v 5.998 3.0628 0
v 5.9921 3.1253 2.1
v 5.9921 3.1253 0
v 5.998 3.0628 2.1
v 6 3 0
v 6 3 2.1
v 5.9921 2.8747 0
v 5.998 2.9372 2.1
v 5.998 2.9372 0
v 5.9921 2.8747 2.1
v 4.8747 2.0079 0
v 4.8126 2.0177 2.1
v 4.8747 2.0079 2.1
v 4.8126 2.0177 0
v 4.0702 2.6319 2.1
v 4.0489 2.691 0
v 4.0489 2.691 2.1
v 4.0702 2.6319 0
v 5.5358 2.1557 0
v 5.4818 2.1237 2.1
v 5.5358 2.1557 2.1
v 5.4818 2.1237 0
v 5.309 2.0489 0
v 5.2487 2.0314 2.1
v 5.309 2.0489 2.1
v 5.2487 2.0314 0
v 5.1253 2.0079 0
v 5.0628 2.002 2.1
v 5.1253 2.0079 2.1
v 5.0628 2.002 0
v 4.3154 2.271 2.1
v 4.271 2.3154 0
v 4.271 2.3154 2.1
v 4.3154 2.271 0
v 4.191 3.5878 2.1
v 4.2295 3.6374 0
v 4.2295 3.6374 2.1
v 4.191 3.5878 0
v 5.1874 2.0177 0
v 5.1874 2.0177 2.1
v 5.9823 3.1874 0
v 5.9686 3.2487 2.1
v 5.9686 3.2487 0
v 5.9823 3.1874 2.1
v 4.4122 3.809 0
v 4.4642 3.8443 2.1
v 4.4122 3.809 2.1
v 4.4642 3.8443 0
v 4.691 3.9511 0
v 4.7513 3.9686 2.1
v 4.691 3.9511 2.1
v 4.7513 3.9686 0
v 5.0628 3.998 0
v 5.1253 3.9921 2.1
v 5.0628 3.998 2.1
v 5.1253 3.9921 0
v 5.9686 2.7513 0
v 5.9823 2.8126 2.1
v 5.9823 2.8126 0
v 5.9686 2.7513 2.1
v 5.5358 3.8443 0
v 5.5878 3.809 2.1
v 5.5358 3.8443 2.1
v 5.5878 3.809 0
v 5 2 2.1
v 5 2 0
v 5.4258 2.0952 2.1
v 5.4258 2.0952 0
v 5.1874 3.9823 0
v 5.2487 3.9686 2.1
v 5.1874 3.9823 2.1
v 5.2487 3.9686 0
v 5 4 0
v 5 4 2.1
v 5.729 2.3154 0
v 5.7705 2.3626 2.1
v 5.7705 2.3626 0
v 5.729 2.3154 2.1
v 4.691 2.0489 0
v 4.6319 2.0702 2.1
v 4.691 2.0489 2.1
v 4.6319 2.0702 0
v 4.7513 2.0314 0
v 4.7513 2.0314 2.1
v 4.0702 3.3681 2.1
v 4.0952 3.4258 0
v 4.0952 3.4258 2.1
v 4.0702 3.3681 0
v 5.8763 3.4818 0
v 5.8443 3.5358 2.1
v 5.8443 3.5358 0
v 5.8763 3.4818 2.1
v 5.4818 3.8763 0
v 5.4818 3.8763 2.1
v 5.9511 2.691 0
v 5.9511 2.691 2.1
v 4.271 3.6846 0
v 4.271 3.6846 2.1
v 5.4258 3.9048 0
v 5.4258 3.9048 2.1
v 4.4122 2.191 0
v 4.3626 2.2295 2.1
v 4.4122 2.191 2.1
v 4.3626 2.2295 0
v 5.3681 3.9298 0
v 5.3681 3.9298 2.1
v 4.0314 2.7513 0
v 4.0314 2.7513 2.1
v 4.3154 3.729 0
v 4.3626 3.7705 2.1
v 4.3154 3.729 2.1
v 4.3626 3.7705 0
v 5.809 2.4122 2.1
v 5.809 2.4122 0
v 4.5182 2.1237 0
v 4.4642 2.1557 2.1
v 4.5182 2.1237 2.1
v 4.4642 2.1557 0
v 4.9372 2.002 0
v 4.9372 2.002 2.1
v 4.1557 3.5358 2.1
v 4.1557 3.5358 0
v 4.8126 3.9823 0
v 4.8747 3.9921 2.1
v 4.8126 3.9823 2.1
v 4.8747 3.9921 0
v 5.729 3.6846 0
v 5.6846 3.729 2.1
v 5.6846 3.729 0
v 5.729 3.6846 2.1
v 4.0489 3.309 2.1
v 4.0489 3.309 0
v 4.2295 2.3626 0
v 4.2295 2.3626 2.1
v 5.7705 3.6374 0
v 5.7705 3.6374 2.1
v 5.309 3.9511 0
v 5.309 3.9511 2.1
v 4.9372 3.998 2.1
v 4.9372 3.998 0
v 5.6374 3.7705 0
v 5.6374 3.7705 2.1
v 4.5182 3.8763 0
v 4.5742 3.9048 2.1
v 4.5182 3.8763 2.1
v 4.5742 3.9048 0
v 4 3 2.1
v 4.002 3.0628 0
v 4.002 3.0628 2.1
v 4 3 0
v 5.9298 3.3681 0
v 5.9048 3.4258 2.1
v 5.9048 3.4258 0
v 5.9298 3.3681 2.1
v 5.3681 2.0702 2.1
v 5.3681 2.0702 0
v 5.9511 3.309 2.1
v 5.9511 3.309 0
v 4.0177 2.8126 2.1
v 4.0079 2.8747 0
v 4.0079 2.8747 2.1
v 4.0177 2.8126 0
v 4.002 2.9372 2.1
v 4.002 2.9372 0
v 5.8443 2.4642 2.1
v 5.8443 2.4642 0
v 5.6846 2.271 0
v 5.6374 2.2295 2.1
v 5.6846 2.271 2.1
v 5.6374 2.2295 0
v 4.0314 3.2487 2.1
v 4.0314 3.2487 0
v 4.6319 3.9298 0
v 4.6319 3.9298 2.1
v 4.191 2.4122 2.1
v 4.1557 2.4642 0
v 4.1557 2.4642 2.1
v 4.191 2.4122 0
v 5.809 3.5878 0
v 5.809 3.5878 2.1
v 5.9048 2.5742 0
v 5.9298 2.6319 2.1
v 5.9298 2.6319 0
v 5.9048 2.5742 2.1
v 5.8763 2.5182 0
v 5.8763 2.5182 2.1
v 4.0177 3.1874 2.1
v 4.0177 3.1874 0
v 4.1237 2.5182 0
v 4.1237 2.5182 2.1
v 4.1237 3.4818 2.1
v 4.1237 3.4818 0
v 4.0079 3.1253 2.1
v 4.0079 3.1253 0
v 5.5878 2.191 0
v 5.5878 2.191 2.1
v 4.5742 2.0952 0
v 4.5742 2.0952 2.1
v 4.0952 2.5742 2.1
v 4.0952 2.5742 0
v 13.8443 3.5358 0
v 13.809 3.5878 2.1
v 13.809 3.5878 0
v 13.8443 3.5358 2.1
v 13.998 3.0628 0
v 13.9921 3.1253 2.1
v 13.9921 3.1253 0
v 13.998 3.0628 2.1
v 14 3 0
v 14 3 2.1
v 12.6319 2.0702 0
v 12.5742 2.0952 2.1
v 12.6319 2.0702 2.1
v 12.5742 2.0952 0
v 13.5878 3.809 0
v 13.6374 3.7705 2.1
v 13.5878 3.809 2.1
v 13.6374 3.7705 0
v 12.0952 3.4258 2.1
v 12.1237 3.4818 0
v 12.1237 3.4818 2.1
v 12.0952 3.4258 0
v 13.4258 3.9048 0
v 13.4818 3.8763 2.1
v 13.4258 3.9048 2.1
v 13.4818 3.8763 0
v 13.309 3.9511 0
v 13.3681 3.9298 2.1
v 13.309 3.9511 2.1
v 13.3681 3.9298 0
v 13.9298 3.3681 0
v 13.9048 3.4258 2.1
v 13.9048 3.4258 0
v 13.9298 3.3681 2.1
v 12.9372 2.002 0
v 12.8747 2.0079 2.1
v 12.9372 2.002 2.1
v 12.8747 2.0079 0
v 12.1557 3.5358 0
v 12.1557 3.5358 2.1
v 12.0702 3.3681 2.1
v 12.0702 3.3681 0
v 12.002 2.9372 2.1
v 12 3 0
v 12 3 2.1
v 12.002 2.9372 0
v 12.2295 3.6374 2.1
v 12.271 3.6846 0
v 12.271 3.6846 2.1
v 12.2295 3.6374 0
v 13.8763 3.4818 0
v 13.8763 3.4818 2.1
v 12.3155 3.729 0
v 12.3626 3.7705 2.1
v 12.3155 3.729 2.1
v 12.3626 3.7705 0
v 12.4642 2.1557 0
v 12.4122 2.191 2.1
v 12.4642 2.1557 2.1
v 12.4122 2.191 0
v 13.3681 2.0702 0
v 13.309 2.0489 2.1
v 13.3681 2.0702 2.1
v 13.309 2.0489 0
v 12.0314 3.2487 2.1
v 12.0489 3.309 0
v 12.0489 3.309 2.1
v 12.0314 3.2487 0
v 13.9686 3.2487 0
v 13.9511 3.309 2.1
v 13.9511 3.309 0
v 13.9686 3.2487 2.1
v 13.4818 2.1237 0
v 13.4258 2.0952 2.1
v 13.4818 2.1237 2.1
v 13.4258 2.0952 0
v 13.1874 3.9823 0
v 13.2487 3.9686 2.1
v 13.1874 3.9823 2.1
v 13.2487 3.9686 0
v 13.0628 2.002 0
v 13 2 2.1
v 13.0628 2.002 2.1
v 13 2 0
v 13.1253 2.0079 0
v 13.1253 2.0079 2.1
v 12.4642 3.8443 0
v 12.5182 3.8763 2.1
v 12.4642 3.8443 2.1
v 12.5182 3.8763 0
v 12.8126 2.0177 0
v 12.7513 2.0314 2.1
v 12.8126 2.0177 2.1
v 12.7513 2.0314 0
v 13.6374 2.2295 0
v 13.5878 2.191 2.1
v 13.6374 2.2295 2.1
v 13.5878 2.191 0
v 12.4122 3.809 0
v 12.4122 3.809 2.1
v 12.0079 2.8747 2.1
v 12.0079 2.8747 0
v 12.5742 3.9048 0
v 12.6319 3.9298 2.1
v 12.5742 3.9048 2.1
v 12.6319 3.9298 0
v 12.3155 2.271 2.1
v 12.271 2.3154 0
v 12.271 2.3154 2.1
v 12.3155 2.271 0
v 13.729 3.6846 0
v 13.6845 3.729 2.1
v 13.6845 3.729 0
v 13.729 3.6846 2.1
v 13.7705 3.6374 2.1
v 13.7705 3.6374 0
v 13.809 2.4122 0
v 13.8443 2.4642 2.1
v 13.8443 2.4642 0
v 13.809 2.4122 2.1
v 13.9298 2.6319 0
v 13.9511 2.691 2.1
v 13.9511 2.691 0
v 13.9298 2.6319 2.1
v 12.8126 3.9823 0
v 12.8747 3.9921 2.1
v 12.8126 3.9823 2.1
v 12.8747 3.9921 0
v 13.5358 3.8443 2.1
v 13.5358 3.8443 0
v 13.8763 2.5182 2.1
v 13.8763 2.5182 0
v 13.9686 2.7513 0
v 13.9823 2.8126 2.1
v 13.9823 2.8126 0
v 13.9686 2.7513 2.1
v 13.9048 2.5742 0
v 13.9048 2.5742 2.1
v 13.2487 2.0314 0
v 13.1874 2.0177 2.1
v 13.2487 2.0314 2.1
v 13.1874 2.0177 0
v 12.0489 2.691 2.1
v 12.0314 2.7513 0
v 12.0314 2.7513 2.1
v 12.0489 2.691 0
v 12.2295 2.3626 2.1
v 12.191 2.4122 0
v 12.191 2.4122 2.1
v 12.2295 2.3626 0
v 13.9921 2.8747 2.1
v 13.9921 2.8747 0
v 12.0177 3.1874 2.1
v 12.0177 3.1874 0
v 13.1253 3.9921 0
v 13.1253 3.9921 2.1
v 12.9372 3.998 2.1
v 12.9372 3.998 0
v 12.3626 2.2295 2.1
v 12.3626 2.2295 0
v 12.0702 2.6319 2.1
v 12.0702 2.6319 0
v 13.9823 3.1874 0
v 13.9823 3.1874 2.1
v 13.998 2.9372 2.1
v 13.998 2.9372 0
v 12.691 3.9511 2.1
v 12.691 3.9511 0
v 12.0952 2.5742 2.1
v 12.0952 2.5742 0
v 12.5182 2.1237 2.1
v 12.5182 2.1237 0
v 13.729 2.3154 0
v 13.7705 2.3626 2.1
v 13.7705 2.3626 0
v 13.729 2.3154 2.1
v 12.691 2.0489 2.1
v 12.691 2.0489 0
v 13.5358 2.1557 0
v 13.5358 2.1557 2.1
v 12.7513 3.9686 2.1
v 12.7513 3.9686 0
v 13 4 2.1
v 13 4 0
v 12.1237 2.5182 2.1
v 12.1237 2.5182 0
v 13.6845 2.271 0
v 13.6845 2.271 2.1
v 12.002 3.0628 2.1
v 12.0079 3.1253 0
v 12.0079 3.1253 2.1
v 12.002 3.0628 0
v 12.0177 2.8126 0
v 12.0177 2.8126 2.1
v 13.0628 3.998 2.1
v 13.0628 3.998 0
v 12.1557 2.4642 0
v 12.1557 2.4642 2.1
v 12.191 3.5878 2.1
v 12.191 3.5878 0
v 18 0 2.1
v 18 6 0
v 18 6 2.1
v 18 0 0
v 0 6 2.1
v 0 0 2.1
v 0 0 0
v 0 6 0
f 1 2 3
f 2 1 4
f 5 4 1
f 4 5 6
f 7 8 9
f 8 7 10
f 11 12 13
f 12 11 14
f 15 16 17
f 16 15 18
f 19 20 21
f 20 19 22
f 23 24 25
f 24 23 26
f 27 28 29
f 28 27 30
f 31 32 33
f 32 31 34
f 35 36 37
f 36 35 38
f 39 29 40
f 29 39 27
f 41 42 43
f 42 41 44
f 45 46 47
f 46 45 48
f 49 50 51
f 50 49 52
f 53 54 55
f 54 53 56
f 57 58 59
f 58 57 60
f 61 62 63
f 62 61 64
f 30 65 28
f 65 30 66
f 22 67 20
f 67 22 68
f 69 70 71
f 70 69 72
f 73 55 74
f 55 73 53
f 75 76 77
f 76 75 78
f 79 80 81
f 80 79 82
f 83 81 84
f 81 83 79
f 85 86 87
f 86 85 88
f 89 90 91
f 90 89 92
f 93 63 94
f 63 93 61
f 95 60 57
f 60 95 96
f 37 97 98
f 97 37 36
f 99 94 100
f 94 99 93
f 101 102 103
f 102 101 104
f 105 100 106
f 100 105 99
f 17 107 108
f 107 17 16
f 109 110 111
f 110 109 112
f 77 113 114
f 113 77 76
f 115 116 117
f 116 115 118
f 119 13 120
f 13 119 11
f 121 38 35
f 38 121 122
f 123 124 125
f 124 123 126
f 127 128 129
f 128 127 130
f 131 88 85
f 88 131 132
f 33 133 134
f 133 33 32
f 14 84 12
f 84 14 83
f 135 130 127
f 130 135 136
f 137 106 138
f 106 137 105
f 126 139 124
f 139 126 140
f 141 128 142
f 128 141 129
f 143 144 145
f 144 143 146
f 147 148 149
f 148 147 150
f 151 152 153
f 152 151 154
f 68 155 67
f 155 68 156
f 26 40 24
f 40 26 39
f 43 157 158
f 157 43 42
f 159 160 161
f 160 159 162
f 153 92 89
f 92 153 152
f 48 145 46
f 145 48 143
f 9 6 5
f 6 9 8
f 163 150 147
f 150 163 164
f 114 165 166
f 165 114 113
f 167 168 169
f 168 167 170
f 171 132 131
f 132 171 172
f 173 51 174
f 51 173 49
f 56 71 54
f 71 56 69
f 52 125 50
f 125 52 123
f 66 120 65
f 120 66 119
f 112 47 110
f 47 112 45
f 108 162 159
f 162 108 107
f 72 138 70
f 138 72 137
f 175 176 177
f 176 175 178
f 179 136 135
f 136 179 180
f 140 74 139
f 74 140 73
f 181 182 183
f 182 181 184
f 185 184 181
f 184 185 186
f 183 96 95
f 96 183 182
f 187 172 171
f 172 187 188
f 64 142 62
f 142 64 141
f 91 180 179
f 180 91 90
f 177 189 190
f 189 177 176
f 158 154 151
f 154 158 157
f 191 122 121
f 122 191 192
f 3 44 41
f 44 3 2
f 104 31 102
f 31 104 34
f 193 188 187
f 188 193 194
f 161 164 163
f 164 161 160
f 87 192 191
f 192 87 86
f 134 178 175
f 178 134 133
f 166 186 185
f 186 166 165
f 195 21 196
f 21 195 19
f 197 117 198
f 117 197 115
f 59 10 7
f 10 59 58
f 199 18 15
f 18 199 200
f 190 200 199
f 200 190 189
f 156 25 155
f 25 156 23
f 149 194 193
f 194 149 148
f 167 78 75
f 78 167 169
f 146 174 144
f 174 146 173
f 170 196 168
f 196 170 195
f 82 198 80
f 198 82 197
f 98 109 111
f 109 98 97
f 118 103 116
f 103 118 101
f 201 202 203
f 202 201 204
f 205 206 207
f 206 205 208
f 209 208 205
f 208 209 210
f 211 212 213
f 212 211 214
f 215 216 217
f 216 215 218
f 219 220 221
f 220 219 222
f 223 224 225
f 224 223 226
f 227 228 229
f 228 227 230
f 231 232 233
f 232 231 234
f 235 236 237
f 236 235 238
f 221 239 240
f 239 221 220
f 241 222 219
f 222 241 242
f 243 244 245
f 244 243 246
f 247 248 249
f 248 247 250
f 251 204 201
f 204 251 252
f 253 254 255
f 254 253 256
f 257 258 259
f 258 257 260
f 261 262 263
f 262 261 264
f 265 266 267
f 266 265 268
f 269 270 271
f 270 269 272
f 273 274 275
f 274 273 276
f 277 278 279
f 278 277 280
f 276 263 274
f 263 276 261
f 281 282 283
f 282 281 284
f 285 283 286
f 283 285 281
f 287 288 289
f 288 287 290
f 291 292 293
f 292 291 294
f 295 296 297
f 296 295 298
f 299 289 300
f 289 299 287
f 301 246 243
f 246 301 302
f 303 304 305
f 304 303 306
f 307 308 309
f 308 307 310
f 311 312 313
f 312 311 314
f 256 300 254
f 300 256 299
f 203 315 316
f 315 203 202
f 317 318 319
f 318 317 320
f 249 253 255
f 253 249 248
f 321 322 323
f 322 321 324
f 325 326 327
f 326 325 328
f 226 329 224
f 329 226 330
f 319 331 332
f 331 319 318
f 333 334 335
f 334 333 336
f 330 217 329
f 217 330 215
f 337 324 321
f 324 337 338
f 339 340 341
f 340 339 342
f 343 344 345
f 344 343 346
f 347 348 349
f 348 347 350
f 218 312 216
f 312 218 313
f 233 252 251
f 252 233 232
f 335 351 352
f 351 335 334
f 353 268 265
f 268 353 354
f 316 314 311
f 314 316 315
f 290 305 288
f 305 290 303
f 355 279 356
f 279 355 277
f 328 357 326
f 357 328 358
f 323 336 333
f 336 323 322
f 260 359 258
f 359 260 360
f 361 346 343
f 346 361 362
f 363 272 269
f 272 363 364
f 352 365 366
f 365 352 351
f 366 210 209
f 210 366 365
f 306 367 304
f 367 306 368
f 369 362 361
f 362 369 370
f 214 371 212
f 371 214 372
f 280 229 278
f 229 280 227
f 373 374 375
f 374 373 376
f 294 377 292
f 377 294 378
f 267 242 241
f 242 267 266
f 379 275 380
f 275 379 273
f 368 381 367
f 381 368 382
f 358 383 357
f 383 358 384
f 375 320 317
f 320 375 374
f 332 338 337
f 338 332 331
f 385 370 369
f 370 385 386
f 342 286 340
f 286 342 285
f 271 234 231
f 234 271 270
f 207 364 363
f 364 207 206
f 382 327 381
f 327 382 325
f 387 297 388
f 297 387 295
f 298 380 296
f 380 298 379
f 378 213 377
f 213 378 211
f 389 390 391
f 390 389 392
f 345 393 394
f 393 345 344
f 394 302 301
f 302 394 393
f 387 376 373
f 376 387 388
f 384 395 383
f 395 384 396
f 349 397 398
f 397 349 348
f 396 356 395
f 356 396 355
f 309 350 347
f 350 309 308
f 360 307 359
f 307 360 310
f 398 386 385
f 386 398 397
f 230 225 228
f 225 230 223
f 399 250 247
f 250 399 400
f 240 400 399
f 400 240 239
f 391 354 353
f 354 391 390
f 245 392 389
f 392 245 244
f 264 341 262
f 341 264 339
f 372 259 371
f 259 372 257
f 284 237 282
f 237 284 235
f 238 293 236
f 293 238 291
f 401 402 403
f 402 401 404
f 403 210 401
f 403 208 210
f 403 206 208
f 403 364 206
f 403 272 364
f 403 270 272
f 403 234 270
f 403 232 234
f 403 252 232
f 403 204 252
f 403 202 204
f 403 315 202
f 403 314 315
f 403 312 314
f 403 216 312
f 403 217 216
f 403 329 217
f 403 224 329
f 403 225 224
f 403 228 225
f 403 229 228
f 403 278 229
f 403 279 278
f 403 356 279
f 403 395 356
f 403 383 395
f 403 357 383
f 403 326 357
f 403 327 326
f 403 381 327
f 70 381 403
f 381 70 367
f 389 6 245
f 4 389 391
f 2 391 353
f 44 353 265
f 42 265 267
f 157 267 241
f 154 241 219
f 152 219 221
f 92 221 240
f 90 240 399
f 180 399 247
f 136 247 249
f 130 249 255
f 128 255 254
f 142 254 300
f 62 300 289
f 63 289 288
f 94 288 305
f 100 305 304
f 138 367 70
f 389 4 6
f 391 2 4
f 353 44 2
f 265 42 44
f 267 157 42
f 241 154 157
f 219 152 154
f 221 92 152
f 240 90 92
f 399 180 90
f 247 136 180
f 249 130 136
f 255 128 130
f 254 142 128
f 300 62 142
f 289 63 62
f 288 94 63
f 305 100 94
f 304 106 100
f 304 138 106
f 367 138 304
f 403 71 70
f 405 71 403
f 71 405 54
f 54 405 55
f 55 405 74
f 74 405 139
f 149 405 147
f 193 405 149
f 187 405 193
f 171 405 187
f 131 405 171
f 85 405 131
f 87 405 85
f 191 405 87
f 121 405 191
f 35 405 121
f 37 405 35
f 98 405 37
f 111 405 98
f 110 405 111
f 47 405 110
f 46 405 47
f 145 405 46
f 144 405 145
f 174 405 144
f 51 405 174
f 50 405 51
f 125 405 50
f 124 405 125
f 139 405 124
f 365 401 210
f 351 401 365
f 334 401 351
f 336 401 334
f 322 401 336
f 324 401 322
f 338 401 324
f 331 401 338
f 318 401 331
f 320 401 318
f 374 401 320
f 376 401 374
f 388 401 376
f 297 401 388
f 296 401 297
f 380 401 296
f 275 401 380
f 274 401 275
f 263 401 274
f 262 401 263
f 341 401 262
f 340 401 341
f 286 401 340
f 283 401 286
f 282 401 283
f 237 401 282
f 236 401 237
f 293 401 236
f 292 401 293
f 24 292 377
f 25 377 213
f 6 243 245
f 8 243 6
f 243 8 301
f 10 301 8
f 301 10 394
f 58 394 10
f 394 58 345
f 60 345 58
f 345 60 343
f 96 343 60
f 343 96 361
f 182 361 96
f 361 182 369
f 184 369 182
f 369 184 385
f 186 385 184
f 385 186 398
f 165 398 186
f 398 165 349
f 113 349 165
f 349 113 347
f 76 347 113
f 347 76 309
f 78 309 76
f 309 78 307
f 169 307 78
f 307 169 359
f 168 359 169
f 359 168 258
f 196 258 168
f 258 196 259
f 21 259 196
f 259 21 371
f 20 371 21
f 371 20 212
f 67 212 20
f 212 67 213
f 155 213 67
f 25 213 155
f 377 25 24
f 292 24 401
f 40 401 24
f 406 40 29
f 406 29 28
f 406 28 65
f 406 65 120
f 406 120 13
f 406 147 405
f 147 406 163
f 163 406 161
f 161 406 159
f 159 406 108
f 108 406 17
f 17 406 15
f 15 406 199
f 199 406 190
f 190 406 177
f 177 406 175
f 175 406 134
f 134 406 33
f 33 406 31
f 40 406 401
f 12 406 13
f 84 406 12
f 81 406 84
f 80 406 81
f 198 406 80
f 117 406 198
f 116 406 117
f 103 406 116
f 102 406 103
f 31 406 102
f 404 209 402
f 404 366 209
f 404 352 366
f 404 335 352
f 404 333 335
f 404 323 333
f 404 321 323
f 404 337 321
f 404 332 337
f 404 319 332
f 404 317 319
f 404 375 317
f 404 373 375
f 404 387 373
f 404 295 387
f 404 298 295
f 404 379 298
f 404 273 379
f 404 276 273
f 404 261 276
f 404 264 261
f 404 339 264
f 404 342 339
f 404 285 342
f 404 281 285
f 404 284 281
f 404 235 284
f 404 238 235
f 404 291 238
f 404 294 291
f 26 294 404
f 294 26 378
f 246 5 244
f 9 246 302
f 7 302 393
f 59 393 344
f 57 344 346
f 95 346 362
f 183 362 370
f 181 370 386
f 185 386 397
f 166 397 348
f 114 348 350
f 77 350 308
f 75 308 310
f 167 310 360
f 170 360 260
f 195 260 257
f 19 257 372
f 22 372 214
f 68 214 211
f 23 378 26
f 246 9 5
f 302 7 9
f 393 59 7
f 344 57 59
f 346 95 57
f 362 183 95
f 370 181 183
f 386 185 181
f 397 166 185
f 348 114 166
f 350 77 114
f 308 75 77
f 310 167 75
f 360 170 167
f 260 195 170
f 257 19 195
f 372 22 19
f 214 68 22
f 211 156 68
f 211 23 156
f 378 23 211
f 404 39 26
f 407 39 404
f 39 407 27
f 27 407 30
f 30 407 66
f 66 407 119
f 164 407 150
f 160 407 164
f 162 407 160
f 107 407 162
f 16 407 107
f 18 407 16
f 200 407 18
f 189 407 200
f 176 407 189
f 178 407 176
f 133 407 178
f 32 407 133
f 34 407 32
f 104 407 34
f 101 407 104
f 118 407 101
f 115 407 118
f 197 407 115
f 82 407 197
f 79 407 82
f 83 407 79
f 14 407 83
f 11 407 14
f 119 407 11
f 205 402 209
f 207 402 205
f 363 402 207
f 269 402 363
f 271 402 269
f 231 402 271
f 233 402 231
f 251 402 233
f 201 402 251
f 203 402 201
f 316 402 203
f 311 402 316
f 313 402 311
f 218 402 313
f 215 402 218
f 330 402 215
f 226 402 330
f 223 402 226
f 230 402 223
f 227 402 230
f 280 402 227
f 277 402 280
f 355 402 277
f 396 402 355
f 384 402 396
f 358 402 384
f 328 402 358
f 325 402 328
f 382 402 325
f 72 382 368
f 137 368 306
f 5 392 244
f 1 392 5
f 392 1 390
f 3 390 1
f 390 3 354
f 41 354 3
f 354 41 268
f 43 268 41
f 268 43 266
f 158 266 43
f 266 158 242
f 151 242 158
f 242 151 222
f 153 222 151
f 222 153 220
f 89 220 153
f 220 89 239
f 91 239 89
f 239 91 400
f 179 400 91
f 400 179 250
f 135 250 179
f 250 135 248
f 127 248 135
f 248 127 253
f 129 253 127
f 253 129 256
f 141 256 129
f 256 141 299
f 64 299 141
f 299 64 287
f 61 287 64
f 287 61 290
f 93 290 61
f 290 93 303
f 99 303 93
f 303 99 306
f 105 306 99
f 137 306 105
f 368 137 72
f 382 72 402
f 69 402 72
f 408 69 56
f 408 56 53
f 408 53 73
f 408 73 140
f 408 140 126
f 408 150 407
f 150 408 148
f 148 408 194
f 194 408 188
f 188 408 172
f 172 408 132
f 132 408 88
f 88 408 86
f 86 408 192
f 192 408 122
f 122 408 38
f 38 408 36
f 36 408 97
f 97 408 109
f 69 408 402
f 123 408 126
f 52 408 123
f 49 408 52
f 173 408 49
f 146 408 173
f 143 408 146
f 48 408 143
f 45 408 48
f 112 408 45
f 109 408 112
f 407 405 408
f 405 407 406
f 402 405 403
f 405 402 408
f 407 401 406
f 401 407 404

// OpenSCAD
$fn=100;
tab_height=.3;
tab2bottom=2.4;

plus=.1; // this is to make parts larger than the hole they are to make
plusH=plus/2;

hole_d=2;
tab1_hole_spacing=8;
shim_height=tab2bottom-tab_height;
shim_depth=6;
shim_width=18;

module tab1(){
    difference(){
        cube([shim_width,shim_depth,shim_height]);
        translate([shim_width/2-tab1_hole_spacing/2,(shim_depth/2),-plusH])
            union() {
                cylinder(h=shim_height+plus,d=hole_d);
                translate([tab1_hole_spacing,0,0]) cylinder(h=shim_height+plus,d=hole_d);
            }
    }
}

tab1();
